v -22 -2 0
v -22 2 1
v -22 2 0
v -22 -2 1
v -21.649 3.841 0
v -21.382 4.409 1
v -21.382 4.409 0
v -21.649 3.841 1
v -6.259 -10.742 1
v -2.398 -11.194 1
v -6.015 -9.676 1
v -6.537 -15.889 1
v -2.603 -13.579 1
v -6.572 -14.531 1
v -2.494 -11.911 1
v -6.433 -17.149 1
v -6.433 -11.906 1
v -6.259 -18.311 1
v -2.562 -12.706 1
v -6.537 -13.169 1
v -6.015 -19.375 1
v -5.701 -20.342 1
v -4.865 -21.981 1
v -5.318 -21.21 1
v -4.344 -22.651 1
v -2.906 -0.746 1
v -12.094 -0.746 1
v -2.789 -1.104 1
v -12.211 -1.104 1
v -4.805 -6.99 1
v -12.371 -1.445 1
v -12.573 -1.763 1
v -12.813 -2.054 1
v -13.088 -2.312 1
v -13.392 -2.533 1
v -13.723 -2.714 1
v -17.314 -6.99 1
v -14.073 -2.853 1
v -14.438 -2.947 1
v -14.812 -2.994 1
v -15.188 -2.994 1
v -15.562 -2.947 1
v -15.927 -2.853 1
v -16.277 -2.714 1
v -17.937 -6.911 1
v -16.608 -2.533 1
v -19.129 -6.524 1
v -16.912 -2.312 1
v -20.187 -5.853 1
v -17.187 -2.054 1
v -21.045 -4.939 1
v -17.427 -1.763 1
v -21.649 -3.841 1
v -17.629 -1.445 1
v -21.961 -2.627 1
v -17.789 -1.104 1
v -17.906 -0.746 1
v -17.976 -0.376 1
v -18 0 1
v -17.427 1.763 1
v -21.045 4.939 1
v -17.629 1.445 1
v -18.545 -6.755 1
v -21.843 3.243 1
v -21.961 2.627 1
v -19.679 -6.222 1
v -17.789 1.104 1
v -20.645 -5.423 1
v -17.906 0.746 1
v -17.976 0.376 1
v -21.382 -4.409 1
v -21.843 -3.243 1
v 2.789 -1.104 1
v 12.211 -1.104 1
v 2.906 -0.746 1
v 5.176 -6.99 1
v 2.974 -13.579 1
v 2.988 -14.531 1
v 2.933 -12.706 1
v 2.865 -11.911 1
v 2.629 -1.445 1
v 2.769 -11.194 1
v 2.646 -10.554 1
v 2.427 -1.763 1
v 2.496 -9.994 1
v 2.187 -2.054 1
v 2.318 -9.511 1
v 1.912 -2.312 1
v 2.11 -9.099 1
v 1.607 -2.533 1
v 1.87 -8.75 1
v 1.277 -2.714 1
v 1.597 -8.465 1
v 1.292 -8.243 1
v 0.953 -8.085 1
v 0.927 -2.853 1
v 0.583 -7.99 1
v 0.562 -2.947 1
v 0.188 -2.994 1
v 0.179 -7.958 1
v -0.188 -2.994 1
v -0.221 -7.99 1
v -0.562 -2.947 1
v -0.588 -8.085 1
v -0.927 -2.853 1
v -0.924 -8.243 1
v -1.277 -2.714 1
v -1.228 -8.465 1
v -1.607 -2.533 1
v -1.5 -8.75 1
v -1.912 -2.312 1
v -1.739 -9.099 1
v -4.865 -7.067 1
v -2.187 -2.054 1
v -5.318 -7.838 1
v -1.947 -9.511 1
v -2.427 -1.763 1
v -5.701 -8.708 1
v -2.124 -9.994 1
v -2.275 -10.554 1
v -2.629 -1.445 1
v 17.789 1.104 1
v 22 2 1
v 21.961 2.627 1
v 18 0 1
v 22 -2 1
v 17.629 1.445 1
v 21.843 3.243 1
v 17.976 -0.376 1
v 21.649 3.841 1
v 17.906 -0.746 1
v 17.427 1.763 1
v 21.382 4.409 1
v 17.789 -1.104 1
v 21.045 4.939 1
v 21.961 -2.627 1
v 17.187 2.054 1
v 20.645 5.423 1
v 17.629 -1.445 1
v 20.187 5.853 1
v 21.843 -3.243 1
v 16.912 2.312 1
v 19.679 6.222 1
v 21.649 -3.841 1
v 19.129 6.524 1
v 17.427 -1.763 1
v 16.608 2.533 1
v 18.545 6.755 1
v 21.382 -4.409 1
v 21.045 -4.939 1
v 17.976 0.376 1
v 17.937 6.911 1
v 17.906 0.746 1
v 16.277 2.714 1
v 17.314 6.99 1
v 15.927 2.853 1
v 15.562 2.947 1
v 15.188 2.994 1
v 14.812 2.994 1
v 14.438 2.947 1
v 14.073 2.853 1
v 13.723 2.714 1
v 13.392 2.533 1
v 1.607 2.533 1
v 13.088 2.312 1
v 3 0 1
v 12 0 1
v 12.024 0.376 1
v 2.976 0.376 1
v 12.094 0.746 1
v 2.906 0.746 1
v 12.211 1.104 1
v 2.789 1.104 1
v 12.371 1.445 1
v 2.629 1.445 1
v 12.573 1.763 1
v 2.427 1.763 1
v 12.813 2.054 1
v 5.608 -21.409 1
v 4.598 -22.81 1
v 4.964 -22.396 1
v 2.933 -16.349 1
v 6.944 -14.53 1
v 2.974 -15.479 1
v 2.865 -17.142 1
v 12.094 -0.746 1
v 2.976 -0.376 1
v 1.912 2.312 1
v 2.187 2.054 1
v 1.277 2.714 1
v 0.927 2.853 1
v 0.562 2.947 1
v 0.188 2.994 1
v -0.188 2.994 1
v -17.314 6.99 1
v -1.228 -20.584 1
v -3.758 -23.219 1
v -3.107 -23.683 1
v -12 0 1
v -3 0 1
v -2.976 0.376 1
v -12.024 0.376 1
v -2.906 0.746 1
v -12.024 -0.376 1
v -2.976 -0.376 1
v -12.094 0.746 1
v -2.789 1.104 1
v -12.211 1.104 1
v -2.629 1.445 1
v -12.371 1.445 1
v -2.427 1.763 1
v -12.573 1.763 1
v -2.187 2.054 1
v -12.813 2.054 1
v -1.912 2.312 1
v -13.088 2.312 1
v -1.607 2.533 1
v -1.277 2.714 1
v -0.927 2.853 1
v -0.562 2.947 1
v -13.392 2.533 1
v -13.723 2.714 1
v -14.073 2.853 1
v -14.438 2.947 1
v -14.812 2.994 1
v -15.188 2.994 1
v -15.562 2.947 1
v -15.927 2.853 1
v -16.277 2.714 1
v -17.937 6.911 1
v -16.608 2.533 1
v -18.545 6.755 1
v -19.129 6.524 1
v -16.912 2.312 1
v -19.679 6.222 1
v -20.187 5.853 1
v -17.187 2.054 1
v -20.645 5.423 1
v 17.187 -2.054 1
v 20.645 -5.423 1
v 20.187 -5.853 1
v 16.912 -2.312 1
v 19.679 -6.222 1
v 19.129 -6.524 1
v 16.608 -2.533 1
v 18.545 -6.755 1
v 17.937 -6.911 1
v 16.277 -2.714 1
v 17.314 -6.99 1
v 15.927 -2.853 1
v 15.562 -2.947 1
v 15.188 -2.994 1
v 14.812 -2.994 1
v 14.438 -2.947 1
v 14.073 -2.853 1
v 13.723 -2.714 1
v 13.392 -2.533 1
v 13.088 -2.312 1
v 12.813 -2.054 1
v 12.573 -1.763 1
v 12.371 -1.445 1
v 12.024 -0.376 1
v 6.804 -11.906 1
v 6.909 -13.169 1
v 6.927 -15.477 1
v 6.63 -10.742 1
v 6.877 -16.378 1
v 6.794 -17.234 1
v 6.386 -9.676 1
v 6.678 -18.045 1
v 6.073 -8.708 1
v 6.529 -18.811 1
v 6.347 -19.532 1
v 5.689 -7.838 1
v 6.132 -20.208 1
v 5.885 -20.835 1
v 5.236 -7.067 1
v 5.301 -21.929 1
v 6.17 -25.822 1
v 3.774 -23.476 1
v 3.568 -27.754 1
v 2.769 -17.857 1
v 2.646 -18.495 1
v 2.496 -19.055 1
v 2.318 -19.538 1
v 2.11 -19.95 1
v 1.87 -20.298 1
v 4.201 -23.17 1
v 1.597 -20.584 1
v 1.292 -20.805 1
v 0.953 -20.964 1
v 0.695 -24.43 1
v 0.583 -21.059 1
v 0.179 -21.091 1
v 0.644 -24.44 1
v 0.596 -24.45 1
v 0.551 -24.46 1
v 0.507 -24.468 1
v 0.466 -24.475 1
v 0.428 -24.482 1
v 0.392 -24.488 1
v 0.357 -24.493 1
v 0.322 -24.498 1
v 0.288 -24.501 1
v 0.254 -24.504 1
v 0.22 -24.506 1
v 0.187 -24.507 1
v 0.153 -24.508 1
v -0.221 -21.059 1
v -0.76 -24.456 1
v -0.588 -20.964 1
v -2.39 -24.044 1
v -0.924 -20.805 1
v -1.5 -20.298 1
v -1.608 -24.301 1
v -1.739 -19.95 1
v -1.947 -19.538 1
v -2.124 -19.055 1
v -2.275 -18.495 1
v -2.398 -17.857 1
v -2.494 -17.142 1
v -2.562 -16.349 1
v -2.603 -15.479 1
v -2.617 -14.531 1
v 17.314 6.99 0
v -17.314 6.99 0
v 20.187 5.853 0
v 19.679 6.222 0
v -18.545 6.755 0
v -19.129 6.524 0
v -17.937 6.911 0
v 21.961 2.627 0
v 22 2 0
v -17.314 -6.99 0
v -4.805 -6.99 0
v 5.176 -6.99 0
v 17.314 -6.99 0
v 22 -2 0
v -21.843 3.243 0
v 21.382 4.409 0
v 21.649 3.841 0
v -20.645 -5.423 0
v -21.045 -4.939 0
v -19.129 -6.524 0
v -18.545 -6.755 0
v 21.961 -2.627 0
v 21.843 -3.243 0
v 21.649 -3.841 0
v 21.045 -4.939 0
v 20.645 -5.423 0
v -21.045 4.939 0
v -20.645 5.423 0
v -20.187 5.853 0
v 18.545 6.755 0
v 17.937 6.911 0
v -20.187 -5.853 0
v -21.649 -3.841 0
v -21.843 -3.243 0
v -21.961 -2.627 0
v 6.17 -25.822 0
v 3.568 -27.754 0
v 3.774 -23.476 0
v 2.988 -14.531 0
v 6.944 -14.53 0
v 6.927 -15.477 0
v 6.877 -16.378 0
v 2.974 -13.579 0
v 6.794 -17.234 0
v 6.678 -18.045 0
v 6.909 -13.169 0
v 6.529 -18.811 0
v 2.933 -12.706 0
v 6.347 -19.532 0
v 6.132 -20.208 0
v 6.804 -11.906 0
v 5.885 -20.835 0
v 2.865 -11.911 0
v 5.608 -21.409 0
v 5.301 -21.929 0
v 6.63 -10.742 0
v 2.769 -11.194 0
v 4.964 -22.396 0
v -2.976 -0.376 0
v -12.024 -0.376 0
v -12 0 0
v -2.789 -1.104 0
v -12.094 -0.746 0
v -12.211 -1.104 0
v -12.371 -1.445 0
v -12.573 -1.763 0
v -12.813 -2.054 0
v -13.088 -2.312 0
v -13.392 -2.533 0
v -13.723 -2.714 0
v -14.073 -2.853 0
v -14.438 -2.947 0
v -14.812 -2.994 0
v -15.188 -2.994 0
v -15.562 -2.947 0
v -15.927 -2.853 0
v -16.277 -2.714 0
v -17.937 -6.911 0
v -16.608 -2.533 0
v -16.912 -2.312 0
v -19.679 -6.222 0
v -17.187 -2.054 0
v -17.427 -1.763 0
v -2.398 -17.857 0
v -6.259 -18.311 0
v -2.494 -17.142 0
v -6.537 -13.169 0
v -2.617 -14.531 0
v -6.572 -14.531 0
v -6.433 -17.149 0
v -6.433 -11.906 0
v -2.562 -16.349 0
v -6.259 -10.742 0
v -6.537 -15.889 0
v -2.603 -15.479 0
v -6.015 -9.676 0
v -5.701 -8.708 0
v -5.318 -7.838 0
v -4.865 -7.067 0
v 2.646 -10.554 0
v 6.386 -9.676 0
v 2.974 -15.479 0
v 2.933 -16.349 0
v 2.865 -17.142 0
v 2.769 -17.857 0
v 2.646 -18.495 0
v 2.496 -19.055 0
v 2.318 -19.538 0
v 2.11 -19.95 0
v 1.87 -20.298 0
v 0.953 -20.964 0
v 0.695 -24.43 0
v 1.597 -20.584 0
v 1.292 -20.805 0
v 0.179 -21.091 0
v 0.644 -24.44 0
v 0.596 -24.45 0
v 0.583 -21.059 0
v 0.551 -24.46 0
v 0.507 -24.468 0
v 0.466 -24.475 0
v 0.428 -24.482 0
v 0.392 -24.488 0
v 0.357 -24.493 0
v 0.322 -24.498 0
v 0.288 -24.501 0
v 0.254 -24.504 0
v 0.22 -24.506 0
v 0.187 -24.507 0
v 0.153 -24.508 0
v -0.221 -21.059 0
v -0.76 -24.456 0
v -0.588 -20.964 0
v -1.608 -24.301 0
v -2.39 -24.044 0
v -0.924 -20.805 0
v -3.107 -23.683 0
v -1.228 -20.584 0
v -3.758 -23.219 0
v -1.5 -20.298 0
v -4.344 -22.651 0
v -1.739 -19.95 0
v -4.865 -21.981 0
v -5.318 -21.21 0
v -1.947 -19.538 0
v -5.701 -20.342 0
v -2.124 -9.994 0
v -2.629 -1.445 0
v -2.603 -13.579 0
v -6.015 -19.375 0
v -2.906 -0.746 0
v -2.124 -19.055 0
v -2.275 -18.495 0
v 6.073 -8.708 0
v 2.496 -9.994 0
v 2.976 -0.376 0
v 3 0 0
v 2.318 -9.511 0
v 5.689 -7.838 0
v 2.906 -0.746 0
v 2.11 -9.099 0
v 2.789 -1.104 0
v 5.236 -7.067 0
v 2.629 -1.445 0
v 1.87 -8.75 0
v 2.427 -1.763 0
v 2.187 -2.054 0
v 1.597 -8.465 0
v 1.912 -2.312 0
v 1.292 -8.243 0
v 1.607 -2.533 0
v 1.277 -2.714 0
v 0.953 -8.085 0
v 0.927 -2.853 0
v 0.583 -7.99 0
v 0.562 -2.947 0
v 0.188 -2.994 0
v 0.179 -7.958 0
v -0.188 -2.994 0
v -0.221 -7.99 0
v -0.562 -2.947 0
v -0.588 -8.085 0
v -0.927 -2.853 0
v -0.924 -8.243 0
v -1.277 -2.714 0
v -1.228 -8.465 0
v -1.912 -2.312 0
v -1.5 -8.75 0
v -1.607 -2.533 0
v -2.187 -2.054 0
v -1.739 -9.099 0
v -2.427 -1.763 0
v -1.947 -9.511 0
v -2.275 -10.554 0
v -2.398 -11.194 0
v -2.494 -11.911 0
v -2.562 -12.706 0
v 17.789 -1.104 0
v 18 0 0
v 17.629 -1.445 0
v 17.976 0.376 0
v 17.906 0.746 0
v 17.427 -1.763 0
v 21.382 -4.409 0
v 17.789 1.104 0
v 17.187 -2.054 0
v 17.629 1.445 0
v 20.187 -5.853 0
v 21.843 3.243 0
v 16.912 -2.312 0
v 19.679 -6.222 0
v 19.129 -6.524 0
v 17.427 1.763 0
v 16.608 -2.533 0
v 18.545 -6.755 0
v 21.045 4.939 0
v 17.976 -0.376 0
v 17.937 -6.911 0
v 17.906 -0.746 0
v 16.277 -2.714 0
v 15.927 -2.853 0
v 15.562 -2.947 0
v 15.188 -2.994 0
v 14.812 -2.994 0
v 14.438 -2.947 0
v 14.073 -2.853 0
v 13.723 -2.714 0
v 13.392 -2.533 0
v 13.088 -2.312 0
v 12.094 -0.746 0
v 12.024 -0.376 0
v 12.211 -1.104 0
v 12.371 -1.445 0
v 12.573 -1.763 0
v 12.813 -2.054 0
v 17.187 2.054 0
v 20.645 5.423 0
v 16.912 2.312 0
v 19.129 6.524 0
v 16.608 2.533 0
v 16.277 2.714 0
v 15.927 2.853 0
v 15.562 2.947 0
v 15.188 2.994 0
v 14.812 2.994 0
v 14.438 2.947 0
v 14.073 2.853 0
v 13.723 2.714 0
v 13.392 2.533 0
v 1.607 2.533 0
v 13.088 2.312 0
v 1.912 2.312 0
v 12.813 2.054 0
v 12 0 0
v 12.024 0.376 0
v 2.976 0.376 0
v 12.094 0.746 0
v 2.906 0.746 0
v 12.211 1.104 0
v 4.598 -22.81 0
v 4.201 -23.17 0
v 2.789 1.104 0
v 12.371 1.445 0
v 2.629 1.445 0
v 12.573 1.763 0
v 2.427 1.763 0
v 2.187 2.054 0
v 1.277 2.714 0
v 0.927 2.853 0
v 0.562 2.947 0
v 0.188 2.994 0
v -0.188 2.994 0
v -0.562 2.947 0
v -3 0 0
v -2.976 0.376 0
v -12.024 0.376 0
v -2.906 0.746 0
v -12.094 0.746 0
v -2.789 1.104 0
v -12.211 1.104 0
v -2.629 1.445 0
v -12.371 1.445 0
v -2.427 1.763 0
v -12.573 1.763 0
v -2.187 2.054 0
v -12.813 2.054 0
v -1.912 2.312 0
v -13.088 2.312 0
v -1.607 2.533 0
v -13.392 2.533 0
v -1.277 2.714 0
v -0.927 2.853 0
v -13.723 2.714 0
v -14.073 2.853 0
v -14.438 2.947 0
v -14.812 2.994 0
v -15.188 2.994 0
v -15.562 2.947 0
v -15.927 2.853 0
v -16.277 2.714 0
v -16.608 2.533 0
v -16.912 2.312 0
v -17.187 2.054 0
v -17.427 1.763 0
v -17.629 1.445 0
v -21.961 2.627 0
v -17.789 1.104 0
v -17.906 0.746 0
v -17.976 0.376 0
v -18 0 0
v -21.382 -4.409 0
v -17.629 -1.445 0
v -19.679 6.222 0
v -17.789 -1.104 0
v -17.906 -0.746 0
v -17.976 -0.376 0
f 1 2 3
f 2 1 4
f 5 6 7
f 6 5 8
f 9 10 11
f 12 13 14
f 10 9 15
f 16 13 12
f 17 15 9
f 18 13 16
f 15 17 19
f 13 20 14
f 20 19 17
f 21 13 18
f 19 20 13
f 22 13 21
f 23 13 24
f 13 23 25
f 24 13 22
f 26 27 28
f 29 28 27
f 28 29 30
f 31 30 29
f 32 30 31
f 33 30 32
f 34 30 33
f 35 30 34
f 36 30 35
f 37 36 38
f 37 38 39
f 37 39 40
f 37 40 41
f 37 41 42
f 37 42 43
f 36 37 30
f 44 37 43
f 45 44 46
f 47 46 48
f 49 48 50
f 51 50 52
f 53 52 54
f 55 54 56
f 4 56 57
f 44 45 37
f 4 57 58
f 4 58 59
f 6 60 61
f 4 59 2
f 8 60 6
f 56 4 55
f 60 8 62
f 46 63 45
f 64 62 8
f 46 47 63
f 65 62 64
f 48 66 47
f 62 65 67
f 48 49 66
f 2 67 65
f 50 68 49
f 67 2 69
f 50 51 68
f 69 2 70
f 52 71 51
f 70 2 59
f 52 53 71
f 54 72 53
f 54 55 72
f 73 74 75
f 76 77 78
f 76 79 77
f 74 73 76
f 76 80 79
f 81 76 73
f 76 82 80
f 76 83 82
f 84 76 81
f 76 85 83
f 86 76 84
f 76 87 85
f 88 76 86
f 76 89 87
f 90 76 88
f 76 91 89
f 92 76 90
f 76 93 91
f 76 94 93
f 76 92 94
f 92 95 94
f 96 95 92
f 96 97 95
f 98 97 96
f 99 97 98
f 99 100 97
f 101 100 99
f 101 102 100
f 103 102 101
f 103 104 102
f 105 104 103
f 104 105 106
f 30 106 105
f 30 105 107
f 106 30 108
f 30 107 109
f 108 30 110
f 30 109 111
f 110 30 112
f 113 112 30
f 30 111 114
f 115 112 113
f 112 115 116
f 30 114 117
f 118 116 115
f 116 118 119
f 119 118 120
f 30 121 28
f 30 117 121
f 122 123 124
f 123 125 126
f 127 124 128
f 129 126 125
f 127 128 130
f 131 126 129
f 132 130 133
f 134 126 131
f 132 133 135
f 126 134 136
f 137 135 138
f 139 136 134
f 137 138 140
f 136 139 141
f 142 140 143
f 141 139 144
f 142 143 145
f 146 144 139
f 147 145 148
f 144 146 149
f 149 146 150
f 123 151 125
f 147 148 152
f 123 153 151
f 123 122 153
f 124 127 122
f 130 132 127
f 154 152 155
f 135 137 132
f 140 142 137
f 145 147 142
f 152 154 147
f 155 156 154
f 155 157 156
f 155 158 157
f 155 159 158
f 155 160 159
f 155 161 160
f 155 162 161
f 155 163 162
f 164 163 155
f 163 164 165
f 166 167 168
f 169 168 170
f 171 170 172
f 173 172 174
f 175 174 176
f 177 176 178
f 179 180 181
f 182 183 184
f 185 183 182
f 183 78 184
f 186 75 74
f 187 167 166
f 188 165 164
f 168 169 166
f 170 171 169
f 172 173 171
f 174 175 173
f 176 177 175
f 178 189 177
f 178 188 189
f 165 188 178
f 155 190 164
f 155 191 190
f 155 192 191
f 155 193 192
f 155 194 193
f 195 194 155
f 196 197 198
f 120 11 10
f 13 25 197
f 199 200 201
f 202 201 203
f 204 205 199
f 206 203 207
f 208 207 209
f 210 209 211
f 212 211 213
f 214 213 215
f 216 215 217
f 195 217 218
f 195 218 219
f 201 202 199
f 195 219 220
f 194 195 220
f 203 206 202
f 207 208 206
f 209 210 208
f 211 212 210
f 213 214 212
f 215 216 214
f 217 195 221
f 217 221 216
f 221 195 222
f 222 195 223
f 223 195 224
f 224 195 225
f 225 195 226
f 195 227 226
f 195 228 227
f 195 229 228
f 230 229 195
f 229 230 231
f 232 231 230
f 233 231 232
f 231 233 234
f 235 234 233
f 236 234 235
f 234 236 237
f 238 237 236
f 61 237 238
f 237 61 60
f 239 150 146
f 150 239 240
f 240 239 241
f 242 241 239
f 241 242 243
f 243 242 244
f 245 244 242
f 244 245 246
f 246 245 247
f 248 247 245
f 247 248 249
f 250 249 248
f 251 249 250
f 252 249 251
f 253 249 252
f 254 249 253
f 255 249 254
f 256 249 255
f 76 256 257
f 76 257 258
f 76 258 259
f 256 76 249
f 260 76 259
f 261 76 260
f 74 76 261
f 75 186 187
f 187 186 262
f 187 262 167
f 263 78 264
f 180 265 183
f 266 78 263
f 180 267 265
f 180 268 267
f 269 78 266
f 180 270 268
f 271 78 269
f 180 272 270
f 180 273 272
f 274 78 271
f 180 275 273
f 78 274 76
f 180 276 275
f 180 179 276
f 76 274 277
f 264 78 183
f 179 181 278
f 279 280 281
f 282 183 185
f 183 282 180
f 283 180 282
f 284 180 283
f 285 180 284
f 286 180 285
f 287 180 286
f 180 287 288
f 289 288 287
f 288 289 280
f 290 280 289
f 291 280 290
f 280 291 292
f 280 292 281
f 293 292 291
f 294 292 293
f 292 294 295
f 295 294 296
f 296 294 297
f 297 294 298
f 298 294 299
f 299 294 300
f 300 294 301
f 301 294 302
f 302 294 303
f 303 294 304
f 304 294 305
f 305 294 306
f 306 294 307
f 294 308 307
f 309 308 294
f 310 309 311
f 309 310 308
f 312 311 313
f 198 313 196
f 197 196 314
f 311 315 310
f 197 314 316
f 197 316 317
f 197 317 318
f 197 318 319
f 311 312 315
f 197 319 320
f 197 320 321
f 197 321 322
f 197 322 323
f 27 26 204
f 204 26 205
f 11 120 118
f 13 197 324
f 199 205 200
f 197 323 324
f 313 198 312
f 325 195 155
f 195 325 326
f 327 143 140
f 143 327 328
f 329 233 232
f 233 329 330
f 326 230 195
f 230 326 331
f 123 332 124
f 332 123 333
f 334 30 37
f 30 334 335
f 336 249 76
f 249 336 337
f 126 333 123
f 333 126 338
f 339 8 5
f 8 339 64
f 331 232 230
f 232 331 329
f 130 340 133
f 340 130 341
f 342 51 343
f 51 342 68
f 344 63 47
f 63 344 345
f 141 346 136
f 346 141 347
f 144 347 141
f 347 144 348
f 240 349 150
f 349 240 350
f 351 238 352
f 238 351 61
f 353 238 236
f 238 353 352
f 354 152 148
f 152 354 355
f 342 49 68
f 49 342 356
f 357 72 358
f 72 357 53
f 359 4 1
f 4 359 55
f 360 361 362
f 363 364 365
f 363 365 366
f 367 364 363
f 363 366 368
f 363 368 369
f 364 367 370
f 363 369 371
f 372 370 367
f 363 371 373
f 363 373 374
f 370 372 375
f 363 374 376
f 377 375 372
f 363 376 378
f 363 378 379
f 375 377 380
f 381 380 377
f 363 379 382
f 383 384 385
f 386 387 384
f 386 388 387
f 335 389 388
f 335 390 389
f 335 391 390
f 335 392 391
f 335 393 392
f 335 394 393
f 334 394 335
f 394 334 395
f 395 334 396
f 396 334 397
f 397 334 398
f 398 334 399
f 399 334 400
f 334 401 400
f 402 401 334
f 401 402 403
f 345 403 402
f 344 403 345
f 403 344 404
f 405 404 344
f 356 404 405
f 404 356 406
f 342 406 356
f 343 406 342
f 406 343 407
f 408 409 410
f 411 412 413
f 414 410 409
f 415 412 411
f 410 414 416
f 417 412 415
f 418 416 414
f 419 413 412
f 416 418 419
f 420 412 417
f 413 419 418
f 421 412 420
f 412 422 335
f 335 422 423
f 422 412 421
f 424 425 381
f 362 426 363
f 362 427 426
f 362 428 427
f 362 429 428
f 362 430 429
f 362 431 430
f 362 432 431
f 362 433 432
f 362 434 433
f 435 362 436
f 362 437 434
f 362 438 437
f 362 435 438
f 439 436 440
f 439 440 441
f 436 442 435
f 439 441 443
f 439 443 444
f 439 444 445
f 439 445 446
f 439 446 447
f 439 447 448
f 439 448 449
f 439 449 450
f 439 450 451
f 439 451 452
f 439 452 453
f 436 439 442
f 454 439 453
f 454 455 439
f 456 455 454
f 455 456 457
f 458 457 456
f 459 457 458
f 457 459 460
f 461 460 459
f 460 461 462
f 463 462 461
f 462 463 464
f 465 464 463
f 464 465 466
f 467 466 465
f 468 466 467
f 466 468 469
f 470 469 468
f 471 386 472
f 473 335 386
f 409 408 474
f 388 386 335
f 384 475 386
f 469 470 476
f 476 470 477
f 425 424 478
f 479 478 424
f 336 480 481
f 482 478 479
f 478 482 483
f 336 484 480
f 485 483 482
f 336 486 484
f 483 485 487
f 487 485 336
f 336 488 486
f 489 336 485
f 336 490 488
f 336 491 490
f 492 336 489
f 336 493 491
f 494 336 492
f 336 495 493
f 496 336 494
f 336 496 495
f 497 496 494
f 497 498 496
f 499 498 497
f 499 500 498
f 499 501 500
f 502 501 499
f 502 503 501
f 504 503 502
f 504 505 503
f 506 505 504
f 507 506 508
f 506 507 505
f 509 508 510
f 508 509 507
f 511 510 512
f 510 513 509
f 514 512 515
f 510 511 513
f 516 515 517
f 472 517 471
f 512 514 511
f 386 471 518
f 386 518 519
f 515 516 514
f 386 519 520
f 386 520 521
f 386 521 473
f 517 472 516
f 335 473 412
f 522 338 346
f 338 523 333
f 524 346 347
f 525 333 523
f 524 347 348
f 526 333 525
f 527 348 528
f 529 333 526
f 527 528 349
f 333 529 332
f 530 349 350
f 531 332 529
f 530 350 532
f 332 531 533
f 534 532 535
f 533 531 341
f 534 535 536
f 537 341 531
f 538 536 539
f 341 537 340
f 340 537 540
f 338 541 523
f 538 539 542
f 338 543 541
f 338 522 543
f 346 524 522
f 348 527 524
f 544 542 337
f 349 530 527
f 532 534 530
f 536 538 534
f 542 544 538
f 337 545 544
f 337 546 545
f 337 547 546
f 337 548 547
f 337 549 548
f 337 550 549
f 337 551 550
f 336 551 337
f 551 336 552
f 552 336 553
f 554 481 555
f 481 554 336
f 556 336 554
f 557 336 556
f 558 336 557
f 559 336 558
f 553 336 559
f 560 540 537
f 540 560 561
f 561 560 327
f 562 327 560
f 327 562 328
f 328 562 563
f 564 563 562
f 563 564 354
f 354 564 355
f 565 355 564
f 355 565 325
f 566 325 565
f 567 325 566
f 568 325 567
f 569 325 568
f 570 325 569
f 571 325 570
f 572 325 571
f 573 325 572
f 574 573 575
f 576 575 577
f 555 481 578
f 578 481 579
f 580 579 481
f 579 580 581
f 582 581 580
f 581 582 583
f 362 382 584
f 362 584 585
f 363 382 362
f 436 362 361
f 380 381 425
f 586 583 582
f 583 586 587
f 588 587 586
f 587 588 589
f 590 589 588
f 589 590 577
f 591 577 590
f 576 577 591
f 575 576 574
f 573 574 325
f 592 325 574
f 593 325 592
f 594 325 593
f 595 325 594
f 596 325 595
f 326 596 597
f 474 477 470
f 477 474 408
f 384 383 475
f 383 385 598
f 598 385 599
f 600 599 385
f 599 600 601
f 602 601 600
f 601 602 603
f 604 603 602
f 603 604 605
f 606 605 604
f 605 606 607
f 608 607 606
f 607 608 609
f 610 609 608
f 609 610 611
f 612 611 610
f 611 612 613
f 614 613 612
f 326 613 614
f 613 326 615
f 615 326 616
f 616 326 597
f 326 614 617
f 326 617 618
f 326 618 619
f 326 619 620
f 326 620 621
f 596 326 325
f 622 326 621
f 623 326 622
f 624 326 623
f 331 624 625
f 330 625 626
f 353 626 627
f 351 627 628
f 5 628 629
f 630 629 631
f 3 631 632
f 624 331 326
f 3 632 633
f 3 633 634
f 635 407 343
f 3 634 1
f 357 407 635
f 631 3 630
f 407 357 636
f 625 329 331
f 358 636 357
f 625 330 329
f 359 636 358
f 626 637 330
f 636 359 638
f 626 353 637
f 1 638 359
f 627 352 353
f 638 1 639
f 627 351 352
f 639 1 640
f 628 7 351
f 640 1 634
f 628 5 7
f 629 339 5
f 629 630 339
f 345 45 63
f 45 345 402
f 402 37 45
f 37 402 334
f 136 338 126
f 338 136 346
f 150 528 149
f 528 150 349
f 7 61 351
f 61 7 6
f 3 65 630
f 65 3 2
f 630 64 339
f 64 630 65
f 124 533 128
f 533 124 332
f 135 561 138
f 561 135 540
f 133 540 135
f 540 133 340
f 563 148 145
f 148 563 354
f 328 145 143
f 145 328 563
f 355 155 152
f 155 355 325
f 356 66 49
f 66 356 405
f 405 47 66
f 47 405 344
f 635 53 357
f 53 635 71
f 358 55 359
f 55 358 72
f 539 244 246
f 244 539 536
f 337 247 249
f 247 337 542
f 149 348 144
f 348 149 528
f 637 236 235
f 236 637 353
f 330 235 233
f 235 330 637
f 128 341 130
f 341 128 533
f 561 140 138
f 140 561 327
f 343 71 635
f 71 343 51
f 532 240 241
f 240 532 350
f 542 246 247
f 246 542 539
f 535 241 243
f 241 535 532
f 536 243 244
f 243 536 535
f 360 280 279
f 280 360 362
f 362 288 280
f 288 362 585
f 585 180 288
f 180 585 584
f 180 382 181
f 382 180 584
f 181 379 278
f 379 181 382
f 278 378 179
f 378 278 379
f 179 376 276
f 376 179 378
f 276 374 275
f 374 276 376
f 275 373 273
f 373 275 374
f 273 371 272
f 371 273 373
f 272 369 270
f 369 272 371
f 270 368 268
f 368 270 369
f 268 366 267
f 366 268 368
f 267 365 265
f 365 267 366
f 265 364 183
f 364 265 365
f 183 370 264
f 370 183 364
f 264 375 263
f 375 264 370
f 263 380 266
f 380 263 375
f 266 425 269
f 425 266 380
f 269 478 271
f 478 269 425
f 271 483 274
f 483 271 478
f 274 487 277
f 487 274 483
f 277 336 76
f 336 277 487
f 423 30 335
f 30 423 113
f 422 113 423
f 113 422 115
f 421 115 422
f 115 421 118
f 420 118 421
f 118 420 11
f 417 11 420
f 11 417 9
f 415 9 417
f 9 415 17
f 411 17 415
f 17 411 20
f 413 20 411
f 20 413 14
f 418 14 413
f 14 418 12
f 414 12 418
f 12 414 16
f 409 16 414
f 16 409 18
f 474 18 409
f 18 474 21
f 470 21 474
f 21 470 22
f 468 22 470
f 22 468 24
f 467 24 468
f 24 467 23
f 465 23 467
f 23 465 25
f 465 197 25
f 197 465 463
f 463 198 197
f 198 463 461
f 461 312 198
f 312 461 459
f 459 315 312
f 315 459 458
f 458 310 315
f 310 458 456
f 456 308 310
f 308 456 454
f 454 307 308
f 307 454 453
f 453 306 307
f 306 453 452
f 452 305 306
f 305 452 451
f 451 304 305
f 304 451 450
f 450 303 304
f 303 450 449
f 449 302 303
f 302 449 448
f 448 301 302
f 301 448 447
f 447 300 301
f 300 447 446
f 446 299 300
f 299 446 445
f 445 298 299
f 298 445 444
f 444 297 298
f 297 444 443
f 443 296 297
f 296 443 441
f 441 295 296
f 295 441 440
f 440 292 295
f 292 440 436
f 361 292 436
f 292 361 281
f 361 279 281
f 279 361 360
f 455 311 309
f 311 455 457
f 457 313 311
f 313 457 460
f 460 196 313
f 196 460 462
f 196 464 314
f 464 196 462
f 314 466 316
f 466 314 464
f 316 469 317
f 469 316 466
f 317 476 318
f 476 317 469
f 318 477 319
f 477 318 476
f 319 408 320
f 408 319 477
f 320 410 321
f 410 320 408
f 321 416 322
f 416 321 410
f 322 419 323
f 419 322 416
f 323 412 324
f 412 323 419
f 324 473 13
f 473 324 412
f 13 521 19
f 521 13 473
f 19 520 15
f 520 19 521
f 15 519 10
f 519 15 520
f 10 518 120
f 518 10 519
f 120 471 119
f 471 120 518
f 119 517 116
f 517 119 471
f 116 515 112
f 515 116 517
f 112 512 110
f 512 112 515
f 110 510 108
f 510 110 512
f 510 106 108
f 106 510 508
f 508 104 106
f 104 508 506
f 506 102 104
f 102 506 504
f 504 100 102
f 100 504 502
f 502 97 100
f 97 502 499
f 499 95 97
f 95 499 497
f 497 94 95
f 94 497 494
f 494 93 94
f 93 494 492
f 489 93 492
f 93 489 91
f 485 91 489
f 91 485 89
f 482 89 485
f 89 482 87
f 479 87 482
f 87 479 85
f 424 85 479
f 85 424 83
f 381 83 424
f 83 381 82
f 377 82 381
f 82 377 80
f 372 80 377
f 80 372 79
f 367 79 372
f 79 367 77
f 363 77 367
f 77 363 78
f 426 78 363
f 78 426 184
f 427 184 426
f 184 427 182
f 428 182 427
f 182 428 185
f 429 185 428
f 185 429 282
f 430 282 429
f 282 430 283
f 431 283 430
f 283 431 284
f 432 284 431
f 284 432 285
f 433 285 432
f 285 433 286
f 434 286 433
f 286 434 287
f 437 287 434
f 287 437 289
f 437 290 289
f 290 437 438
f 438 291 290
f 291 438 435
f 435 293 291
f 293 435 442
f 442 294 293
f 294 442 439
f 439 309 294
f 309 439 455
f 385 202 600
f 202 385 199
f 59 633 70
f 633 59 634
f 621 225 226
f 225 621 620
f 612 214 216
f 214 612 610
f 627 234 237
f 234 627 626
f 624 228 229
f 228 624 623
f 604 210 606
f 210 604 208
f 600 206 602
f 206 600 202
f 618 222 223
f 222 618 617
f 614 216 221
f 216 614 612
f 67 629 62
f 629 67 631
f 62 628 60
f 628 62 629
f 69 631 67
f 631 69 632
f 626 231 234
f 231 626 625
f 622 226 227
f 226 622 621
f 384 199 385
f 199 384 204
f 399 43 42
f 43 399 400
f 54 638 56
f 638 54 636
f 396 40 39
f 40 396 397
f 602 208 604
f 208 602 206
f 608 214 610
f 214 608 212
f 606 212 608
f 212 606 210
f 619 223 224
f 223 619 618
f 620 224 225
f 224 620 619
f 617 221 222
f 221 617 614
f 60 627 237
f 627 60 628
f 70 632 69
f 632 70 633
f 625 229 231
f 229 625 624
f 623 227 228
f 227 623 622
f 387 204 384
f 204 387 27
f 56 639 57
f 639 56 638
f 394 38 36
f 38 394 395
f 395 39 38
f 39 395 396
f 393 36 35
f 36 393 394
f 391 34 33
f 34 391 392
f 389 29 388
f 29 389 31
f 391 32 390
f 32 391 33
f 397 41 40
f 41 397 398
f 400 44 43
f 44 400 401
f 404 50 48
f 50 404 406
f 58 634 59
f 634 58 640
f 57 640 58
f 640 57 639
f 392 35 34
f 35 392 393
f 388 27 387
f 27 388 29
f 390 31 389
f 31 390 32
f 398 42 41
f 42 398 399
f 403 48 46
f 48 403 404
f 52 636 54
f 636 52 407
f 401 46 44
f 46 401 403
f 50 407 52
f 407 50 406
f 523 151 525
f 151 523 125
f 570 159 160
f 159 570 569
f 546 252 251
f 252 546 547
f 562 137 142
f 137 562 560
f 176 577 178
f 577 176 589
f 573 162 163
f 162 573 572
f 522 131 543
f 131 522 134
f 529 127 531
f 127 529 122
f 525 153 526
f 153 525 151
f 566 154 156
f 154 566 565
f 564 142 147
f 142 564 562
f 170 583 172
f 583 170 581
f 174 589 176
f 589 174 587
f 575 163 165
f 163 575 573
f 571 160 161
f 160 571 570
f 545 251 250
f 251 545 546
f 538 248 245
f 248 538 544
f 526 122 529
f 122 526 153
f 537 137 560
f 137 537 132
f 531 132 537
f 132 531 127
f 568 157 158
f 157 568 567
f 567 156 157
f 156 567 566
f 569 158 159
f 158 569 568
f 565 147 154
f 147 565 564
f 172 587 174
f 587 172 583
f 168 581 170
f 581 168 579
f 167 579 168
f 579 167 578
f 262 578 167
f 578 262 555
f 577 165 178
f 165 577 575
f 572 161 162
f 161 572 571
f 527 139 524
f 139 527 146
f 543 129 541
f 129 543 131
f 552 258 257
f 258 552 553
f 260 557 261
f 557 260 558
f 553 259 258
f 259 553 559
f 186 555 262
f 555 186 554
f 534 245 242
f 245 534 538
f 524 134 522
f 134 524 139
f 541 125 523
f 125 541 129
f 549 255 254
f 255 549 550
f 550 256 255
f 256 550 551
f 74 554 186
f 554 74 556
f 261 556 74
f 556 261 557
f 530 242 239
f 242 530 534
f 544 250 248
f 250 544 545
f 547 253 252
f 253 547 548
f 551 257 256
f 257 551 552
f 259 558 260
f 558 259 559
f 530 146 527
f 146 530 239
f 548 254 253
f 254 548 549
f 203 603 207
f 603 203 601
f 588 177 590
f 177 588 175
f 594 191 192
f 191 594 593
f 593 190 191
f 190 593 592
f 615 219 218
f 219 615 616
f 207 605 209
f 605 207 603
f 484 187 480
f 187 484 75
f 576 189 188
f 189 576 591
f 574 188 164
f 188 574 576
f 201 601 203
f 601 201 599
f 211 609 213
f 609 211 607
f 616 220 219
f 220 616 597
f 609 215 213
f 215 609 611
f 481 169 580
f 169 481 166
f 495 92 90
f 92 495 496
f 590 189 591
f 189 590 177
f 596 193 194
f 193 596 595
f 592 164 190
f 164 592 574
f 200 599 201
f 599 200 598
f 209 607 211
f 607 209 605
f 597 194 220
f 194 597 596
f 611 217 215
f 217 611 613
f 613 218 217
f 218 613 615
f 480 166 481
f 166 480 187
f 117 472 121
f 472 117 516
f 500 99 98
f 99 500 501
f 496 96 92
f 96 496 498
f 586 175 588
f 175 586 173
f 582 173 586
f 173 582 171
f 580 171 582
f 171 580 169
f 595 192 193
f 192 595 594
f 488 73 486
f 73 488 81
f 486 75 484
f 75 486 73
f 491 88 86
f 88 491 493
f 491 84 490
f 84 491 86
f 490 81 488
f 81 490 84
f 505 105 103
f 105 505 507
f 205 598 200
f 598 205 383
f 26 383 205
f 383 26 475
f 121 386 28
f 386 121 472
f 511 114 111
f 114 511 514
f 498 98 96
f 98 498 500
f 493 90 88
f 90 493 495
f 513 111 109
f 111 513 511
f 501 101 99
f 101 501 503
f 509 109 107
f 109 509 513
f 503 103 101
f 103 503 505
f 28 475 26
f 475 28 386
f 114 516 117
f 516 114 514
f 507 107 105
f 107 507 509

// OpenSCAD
$fn = 50;


difference() {
	union() {
		translate(v = [0, 0, 0]) {
			rotate(a = [0, 0, 0]) {
				hull() {
					translate(v = [-17.0000000000, 2.0000000000, 0]) {
						rotate(a = [0, 0, 0]) {
							translate(v = [0, 0, 0]) {
								rotate(a = [0, 0, 0]) {
									cylinder(h = 1, r = 5);
								}
							}
						}
					}
					translate(v = [17.0000000000, 2.0000000000, 0]) {
						rotate(a = [0, 0, 0]) {
							translate(v = [0, 0, 0]) {
								rotate(a = [0, 0, 0]) {
									cylinder(h = 1, r = 5);
								}
							}
						}
					}
					translate(v = [-17.0000000000, -2.0000000000, 0]) {
						rotate(a = [0, 0, 0]) {
							translate(v = [0, 0, 0]) {
								rotate(a = [0, 0, 0]) {
									cylinder(h = 1, r = 5);
								}
							}
						}
					}
					translate(v = [17.0000000000, -2.0000000000, 0]) {
						rotate(a = [0, 0, 0]) {
							translate(v = [0, 0, 0]) {
								rotate(a = [0, 0, 0]) {
									cylinder(h = 1, r = 5);
								}
							}
						}
					}
				}
			}
		}
		translate(v = [0, -5, 0]) {
			rotate(a = [0, 0, 0]) {
				linear_extrude(height = 1) {
					text(font = "DejaVu Sans Mono:style=Bold", halign = "center", size = 19.0000000000, text = "Q", valign = "top");
				}
			}
		}
	}
	union() {
		translate(v = [-15.0000000000, 0.0000000000, -125.0000000000]) {
			rotate(a = [0, 0, 0]) {
				cylinder(h = 250, r = 3.0000000000);
			}
		}
		translate(v = [15.0000000000, 0.0000000000, -125.0000000000]) {
			rotate(a = [0, 0, 0]) {
				cylinder(h = 250, r = 3.0000000000);
			}
		}
		translate(v = [15.0000000000, 0.0000000000, -125.0000000000]) {
			rotate(a = [0, 0, 0]) {
				cylinder(h = 250, r = 3.0000000000);
			}
		}
		translate(v = [0, 0, -125.0000000000]) {
			rotate(a = [0, 0, 0]) {
				cylinder(h = 250, r = 3.0000000000);
			}
		}
	}
}
